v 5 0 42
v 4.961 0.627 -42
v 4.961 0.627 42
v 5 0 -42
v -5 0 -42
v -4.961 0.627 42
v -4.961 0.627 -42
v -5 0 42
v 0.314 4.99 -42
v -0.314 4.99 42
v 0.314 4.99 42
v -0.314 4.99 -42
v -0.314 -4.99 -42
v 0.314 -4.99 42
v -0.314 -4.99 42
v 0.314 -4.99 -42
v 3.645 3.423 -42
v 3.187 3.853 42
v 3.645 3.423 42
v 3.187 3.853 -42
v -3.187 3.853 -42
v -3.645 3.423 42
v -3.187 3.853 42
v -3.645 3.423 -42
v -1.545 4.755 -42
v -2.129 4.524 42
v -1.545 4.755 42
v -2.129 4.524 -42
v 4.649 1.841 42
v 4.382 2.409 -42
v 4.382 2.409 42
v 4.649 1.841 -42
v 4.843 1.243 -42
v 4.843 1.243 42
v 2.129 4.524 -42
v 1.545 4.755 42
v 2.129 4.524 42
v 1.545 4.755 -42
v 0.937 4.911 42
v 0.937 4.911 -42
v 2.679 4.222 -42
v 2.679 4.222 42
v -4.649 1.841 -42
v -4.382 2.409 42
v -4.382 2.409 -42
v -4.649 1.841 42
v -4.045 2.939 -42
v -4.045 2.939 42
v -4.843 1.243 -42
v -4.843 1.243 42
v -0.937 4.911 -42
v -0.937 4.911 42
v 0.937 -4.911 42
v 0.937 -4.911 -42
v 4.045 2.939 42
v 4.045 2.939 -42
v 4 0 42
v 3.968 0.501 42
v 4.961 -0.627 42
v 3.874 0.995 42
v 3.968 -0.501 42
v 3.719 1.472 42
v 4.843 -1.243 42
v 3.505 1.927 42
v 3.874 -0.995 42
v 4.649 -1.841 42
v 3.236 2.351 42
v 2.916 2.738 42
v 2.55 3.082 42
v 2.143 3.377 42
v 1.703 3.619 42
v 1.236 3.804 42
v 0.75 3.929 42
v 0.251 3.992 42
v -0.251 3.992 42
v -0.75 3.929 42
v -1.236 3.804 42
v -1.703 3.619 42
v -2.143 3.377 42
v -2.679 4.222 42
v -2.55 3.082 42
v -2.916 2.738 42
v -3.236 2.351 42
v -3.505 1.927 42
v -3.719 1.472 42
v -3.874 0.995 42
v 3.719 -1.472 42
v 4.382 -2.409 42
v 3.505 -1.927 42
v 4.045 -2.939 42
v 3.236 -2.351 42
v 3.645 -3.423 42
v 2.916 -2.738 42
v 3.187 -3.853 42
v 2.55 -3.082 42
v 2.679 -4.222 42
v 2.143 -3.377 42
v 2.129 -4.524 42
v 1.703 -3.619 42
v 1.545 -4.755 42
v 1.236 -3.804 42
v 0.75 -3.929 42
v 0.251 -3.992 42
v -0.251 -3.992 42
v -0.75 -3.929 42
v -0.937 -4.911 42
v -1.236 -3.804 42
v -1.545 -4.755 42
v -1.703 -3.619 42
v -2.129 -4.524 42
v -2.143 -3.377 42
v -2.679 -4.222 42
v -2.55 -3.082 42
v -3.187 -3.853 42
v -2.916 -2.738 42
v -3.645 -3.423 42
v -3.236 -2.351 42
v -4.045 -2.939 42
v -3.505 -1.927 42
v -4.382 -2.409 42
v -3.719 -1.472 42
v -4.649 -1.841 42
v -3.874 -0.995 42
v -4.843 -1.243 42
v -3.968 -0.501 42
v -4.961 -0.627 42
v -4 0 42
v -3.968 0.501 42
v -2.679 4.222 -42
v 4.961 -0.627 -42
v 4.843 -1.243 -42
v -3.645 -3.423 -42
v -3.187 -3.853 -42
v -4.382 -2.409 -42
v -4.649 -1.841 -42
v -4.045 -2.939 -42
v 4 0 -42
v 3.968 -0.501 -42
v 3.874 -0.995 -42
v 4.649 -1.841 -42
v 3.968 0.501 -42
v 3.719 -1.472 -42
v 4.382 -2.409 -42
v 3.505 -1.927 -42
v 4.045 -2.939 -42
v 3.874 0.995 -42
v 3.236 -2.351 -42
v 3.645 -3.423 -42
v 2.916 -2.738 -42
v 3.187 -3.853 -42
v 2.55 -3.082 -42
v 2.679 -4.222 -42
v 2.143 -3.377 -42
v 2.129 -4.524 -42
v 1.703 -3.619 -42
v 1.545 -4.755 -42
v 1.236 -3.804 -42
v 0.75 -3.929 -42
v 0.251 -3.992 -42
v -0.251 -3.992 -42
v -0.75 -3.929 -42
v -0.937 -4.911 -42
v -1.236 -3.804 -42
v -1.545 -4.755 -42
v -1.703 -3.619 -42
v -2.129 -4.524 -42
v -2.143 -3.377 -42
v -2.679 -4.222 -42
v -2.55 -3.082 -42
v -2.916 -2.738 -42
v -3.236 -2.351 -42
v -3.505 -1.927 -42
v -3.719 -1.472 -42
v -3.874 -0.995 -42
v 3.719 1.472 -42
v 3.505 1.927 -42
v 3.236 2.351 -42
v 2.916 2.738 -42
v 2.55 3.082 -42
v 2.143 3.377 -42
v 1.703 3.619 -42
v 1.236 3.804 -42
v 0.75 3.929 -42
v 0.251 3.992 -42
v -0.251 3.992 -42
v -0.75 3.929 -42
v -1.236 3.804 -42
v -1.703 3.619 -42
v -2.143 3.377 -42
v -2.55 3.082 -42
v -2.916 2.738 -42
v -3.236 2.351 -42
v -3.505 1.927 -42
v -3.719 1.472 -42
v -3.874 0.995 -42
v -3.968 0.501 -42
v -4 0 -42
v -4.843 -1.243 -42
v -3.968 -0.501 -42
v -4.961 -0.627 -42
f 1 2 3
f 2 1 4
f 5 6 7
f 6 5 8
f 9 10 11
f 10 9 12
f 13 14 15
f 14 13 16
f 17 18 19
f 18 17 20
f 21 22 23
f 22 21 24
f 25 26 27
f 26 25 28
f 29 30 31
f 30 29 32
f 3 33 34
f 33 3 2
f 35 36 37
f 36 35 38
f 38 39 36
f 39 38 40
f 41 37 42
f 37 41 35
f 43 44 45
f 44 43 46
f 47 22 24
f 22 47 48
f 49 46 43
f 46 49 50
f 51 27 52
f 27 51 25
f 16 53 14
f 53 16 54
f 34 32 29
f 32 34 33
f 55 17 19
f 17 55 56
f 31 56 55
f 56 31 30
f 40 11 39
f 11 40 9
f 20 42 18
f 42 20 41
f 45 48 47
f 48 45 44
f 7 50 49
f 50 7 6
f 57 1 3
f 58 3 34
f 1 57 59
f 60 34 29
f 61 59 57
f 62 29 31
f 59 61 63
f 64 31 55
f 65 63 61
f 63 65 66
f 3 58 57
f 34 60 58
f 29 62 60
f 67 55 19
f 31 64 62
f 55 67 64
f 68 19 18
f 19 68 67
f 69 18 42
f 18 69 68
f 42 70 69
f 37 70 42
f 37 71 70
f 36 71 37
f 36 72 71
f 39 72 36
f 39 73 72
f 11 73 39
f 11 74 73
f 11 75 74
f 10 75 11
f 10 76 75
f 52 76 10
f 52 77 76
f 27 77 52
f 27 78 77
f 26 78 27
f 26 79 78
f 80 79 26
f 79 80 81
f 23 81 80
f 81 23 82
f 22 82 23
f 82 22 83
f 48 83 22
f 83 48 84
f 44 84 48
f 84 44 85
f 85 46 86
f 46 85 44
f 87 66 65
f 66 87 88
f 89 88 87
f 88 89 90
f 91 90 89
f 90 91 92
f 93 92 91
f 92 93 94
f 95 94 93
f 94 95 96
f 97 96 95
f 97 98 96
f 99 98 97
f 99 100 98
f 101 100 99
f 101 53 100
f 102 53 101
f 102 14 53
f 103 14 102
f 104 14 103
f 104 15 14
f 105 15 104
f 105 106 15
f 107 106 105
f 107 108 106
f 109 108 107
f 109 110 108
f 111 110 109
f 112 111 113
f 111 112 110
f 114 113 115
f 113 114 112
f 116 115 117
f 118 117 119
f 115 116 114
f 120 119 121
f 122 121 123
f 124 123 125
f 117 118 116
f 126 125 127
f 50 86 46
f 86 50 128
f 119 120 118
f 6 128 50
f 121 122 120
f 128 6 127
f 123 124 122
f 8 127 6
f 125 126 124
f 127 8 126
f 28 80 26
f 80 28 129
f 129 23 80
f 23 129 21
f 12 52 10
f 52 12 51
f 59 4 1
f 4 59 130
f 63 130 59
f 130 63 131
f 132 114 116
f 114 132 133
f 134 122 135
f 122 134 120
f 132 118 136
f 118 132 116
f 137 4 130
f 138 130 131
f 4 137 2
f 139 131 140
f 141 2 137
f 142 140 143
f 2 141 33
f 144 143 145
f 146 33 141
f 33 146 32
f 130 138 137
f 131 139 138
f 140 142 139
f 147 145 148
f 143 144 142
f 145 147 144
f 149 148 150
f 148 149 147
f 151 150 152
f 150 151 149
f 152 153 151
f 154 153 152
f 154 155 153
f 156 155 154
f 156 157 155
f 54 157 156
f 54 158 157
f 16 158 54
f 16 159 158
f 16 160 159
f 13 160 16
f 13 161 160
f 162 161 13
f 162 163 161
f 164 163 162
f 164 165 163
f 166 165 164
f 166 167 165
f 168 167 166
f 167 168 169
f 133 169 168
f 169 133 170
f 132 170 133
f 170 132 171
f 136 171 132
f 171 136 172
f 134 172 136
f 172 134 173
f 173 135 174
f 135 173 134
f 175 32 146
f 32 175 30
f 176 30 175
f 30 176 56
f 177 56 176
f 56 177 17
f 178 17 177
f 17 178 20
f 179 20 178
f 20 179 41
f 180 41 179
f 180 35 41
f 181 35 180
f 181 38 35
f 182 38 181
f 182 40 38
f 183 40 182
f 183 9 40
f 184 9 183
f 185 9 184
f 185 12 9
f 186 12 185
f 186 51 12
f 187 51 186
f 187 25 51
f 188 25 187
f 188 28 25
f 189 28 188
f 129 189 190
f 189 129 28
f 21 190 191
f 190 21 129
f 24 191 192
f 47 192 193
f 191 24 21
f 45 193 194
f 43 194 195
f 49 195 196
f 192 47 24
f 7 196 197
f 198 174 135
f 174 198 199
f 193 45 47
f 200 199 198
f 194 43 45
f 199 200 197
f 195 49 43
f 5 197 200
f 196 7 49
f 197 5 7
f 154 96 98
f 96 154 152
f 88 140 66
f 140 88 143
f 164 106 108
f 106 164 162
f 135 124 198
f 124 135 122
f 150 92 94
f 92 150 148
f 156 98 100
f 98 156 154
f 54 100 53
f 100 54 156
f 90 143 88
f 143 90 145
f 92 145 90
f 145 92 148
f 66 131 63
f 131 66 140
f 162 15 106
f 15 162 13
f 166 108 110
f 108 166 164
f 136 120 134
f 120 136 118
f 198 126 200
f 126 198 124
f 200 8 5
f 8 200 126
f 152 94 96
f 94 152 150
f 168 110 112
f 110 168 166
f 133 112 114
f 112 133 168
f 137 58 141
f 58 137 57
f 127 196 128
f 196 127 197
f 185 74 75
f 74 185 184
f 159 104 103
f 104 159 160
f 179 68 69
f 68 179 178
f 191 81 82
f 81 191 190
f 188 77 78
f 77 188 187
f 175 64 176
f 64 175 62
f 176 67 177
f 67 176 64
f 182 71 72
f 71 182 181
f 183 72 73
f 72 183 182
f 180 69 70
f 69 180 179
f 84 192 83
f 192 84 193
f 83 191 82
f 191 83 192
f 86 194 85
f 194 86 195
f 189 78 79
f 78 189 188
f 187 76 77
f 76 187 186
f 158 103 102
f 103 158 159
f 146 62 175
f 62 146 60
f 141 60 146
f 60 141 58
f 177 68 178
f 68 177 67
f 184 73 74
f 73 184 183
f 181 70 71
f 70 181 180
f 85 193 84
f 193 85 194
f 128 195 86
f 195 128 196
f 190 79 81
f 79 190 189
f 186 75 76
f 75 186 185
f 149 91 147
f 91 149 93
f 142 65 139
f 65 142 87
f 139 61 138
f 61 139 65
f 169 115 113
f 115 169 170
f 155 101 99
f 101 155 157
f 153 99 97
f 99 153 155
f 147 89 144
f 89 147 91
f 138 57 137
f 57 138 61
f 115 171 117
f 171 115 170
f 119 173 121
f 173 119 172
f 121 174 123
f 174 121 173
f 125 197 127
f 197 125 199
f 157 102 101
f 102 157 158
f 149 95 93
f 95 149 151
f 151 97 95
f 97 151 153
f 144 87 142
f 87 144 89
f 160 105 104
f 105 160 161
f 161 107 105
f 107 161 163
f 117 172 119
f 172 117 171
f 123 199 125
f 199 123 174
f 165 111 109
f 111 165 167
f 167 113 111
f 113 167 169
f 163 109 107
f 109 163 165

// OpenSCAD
$fn = 50;


difference() {
	union() {
		translate(v = [0, 0, -42.0000000000]) {
			cylinder(h = 84, r = 5.0000000000);
		}
	}
	union() {
		translate(v = [0, 0, -100.0000000000]) {
			cylinder(h = 200, r = 4);
		}
	}
}
